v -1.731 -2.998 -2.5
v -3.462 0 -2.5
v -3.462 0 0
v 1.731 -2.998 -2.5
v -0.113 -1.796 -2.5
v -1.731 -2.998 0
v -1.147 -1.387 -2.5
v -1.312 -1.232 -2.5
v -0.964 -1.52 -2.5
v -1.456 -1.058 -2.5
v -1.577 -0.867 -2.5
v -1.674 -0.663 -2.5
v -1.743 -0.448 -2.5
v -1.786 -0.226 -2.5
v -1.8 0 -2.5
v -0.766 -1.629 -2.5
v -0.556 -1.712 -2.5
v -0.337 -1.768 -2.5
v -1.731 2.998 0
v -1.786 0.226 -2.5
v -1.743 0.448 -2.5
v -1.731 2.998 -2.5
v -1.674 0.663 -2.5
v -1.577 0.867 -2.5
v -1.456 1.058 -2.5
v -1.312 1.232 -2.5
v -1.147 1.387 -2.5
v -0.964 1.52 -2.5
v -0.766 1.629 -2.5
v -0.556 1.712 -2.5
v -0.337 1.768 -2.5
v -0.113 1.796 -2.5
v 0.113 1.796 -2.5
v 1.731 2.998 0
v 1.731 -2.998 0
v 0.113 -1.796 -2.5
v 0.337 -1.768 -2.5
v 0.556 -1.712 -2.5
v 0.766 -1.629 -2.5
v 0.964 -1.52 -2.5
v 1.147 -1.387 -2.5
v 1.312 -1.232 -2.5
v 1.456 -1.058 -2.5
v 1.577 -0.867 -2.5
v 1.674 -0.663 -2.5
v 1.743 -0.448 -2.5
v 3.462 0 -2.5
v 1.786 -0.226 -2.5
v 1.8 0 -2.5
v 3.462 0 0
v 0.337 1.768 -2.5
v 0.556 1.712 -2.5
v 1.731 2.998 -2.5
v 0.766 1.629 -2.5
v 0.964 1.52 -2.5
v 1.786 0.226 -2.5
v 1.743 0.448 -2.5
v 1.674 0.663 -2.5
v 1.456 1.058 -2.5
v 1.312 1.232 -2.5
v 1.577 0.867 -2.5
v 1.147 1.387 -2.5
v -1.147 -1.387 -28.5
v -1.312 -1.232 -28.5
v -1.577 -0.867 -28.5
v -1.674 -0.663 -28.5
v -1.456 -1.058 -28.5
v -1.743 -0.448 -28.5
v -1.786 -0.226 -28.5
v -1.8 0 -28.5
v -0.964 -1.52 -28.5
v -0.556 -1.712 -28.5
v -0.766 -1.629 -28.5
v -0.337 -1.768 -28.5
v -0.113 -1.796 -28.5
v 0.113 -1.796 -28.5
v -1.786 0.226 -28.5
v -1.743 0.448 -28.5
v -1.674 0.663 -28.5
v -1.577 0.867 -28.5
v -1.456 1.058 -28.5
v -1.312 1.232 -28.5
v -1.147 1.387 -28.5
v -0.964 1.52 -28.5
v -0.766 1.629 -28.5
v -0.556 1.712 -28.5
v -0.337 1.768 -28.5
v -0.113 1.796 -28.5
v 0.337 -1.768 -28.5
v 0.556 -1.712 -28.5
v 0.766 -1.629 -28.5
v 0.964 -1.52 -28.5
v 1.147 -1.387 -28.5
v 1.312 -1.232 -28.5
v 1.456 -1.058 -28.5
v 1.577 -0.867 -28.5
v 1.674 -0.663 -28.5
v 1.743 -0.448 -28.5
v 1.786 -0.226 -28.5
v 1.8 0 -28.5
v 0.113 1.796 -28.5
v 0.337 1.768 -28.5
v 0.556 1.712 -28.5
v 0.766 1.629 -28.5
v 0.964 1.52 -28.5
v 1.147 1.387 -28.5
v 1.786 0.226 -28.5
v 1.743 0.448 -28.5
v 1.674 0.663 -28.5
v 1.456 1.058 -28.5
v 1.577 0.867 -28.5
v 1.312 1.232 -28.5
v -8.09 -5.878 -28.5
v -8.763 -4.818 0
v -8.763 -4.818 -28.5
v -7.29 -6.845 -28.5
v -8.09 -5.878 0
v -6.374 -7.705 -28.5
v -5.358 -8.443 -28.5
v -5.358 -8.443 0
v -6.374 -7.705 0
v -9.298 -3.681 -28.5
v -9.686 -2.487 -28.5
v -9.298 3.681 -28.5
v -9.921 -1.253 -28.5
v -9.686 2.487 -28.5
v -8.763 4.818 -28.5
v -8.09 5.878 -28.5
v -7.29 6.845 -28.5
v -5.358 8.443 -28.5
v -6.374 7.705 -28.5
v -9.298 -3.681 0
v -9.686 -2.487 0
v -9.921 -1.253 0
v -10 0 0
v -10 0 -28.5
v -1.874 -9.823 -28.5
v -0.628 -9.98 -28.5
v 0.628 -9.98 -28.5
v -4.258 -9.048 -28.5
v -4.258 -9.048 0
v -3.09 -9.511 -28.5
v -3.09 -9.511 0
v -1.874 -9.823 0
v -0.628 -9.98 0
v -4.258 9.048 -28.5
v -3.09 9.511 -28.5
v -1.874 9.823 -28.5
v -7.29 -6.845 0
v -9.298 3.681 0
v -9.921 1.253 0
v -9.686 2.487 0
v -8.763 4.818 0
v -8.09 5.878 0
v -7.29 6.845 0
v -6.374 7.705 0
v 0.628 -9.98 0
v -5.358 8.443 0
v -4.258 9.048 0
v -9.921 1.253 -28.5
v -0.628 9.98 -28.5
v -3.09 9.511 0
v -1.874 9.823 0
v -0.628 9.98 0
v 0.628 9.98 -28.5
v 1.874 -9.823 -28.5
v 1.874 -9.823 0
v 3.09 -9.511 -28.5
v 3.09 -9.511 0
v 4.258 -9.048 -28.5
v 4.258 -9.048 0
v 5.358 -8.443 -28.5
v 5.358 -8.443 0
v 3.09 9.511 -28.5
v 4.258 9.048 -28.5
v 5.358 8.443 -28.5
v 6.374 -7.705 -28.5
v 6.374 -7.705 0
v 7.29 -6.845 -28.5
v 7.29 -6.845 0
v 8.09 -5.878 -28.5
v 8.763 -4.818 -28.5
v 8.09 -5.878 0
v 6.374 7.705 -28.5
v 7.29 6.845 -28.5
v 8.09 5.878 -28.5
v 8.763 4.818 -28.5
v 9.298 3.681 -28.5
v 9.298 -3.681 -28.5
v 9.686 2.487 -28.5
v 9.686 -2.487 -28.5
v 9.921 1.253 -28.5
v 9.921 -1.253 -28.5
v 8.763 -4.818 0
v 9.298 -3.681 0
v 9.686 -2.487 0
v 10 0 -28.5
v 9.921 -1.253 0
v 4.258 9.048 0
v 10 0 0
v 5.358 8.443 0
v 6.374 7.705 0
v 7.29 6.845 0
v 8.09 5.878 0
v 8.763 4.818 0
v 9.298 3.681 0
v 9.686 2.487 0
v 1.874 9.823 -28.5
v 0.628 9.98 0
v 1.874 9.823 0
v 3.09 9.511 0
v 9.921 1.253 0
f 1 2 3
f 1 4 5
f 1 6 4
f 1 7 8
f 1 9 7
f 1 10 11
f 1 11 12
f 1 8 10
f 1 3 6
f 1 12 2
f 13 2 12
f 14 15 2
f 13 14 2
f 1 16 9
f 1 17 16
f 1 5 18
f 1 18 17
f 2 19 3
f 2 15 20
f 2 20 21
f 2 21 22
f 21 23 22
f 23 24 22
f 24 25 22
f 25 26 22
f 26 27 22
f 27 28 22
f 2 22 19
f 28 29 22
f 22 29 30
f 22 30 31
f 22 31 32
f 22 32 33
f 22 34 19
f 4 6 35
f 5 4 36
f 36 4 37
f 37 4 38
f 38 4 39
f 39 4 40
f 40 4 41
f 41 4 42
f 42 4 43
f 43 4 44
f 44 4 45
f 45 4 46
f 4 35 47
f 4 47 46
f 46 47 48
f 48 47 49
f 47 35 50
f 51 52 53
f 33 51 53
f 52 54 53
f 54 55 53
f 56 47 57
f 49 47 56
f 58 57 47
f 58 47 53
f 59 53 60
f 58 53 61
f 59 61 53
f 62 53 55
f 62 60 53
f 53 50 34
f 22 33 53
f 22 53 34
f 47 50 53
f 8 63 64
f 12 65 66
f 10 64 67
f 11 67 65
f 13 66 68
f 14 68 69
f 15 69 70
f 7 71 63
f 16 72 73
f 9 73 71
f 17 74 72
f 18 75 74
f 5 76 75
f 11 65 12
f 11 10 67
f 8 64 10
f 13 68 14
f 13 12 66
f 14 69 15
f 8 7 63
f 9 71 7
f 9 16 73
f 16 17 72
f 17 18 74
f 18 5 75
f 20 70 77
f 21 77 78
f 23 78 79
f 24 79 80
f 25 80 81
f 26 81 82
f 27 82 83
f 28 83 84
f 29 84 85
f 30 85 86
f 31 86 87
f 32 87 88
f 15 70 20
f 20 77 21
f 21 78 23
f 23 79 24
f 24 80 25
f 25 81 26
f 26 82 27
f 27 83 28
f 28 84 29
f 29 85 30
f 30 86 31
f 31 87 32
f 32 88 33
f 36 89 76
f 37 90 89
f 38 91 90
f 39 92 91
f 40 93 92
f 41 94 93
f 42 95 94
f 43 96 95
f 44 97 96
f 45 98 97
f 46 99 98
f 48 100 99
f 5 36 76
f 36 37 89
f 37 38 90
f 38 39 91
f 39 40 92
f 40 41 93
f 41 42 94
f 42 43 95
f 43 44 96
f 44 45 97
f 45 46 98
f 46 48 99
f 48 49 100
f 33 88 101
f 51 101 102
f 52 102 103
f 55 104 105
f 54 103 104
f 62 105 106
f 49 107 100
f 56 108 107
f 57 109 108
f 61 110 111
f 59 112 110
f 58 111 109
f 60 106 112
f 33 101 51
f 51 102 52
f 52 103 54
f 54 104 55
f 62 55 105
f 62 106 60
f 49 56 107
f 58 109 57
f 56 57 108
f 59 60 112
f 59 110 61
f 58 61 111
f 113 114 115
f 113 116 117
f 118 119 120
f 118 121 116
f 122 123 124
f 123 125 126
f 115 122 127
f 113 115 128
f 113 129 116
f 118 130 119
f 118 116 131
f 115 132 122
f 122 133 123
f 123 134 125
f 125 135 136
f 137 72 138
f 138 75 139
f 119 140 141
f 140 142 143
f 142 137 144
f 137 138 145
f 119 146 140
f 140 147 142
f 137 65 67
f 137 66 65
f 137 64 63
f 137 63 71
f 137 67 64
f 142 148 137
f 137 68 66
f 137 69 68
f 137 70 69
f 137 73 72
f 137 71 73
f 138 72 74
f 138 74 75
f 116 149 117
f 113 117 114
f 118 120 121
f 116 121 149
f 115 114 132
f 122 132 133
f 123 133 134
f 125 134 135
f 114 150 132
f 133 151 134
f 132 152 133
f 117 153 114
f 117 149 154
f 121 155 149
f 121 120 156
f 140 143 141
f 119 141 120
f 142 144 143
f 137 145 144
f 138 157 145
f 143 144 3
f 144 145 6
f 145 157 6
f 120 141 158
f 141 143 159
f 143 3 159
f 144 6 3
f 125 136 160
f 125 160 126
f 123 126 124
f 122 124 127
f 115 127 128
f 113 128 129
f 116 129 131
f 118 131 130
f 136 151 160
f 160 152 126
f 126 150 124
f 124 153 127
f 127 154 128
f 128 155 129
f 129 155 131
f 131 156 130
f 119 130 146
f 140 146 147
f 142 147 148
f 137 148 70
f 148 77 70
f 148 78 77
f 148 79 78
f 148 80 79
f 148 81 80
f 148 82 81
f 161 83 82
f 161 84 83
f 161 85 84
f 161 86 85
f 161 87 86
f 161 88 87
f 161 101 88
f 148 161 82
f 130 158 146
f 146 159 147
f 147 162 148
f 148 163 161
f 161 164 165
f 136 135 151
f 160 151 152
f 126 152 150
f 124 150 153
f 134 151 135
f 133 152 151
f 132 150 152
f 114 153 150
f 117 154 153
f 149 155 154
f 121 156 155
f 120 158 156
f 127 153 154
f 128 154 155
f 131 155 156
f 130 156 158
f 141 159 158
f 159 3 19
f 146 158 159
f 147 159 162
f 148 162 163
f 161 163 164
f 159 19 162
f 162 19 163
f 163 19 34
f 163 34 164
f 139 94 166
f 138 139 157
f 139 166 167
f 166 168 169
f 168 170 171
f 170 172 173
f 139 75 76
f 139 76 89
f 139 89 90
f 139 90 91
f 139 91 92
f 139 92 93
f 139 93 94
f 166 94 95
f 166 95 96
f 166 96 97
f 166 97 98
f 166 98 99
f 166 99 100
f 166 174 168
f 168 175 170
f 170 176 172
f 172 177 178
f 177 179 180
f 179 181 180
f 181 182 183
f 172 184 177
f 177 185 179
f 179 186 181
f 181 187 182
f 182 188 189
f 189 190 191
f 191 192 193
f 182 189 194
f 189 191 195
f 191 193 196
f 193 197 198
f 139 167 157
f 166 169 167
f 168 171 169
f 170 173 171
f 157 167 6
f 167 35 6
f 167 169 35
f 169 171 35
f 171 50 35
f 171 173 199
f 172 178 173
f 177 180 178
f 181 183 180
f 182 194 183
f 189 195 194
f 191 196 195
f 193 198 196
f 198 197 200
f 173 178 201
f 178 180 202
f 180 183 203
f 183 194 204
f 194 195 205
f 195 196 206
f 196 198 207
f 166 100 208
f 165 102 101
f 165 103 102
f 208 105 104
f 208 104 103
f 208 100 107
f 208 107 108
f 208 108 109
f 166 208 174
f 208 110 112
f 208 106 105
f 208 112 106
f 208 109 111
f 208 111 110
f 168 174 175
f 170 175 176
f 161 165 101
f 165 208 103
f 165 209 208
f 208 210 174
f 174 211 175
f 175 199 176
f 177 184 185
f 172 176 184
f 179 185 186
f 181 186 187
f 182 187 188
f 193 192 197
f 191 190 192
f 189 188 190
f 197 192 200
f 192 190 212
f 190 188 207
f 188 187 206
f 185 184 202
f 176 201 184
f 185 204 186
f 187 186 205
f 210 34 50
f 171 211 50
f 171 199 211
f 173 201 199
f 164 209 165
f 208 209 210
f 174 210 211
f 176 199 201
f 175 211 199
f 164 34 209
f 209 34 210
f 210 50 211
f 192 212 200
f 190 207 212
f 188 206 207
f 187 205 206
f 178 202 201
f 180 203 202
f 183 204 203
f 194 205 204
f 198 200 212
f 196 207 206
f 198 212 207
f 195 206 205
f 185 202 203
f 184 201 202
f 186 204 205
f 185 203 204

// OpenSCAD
$fn = 50;

difference() {
	union() {
		translate(v = [0, 0, -28.5]) {
			cylinder(h = 28.5, r = 10.0);
		}
	}
	union() {
		translate(v = [0, 0, 0]) {
			rotate(a = [0, 0, 0]) {
				difference() {
					union() {
						translate(v = [0, 0, -2.5]) {
							linear_extrude(height = 2.5) {
								polygon(points = [[3.4619999999999997, 0.0], [1.7310000000000003, 2.9981799479017264], [-1.7309999999999992, 2.9981799479017264], [-3.4619999999999997, 4.2397272186481365e-16], [-1.7310000000000014, -2.998179947901726], [1.7309999999999977, -2.9981799479017277]]);
							}
						}
					}
					union();
				}
			}
		}
		#translate(v = [0, 0, -100.0]) {
			cylinder(h = 200, r = 1.8);
		}
	}
}
